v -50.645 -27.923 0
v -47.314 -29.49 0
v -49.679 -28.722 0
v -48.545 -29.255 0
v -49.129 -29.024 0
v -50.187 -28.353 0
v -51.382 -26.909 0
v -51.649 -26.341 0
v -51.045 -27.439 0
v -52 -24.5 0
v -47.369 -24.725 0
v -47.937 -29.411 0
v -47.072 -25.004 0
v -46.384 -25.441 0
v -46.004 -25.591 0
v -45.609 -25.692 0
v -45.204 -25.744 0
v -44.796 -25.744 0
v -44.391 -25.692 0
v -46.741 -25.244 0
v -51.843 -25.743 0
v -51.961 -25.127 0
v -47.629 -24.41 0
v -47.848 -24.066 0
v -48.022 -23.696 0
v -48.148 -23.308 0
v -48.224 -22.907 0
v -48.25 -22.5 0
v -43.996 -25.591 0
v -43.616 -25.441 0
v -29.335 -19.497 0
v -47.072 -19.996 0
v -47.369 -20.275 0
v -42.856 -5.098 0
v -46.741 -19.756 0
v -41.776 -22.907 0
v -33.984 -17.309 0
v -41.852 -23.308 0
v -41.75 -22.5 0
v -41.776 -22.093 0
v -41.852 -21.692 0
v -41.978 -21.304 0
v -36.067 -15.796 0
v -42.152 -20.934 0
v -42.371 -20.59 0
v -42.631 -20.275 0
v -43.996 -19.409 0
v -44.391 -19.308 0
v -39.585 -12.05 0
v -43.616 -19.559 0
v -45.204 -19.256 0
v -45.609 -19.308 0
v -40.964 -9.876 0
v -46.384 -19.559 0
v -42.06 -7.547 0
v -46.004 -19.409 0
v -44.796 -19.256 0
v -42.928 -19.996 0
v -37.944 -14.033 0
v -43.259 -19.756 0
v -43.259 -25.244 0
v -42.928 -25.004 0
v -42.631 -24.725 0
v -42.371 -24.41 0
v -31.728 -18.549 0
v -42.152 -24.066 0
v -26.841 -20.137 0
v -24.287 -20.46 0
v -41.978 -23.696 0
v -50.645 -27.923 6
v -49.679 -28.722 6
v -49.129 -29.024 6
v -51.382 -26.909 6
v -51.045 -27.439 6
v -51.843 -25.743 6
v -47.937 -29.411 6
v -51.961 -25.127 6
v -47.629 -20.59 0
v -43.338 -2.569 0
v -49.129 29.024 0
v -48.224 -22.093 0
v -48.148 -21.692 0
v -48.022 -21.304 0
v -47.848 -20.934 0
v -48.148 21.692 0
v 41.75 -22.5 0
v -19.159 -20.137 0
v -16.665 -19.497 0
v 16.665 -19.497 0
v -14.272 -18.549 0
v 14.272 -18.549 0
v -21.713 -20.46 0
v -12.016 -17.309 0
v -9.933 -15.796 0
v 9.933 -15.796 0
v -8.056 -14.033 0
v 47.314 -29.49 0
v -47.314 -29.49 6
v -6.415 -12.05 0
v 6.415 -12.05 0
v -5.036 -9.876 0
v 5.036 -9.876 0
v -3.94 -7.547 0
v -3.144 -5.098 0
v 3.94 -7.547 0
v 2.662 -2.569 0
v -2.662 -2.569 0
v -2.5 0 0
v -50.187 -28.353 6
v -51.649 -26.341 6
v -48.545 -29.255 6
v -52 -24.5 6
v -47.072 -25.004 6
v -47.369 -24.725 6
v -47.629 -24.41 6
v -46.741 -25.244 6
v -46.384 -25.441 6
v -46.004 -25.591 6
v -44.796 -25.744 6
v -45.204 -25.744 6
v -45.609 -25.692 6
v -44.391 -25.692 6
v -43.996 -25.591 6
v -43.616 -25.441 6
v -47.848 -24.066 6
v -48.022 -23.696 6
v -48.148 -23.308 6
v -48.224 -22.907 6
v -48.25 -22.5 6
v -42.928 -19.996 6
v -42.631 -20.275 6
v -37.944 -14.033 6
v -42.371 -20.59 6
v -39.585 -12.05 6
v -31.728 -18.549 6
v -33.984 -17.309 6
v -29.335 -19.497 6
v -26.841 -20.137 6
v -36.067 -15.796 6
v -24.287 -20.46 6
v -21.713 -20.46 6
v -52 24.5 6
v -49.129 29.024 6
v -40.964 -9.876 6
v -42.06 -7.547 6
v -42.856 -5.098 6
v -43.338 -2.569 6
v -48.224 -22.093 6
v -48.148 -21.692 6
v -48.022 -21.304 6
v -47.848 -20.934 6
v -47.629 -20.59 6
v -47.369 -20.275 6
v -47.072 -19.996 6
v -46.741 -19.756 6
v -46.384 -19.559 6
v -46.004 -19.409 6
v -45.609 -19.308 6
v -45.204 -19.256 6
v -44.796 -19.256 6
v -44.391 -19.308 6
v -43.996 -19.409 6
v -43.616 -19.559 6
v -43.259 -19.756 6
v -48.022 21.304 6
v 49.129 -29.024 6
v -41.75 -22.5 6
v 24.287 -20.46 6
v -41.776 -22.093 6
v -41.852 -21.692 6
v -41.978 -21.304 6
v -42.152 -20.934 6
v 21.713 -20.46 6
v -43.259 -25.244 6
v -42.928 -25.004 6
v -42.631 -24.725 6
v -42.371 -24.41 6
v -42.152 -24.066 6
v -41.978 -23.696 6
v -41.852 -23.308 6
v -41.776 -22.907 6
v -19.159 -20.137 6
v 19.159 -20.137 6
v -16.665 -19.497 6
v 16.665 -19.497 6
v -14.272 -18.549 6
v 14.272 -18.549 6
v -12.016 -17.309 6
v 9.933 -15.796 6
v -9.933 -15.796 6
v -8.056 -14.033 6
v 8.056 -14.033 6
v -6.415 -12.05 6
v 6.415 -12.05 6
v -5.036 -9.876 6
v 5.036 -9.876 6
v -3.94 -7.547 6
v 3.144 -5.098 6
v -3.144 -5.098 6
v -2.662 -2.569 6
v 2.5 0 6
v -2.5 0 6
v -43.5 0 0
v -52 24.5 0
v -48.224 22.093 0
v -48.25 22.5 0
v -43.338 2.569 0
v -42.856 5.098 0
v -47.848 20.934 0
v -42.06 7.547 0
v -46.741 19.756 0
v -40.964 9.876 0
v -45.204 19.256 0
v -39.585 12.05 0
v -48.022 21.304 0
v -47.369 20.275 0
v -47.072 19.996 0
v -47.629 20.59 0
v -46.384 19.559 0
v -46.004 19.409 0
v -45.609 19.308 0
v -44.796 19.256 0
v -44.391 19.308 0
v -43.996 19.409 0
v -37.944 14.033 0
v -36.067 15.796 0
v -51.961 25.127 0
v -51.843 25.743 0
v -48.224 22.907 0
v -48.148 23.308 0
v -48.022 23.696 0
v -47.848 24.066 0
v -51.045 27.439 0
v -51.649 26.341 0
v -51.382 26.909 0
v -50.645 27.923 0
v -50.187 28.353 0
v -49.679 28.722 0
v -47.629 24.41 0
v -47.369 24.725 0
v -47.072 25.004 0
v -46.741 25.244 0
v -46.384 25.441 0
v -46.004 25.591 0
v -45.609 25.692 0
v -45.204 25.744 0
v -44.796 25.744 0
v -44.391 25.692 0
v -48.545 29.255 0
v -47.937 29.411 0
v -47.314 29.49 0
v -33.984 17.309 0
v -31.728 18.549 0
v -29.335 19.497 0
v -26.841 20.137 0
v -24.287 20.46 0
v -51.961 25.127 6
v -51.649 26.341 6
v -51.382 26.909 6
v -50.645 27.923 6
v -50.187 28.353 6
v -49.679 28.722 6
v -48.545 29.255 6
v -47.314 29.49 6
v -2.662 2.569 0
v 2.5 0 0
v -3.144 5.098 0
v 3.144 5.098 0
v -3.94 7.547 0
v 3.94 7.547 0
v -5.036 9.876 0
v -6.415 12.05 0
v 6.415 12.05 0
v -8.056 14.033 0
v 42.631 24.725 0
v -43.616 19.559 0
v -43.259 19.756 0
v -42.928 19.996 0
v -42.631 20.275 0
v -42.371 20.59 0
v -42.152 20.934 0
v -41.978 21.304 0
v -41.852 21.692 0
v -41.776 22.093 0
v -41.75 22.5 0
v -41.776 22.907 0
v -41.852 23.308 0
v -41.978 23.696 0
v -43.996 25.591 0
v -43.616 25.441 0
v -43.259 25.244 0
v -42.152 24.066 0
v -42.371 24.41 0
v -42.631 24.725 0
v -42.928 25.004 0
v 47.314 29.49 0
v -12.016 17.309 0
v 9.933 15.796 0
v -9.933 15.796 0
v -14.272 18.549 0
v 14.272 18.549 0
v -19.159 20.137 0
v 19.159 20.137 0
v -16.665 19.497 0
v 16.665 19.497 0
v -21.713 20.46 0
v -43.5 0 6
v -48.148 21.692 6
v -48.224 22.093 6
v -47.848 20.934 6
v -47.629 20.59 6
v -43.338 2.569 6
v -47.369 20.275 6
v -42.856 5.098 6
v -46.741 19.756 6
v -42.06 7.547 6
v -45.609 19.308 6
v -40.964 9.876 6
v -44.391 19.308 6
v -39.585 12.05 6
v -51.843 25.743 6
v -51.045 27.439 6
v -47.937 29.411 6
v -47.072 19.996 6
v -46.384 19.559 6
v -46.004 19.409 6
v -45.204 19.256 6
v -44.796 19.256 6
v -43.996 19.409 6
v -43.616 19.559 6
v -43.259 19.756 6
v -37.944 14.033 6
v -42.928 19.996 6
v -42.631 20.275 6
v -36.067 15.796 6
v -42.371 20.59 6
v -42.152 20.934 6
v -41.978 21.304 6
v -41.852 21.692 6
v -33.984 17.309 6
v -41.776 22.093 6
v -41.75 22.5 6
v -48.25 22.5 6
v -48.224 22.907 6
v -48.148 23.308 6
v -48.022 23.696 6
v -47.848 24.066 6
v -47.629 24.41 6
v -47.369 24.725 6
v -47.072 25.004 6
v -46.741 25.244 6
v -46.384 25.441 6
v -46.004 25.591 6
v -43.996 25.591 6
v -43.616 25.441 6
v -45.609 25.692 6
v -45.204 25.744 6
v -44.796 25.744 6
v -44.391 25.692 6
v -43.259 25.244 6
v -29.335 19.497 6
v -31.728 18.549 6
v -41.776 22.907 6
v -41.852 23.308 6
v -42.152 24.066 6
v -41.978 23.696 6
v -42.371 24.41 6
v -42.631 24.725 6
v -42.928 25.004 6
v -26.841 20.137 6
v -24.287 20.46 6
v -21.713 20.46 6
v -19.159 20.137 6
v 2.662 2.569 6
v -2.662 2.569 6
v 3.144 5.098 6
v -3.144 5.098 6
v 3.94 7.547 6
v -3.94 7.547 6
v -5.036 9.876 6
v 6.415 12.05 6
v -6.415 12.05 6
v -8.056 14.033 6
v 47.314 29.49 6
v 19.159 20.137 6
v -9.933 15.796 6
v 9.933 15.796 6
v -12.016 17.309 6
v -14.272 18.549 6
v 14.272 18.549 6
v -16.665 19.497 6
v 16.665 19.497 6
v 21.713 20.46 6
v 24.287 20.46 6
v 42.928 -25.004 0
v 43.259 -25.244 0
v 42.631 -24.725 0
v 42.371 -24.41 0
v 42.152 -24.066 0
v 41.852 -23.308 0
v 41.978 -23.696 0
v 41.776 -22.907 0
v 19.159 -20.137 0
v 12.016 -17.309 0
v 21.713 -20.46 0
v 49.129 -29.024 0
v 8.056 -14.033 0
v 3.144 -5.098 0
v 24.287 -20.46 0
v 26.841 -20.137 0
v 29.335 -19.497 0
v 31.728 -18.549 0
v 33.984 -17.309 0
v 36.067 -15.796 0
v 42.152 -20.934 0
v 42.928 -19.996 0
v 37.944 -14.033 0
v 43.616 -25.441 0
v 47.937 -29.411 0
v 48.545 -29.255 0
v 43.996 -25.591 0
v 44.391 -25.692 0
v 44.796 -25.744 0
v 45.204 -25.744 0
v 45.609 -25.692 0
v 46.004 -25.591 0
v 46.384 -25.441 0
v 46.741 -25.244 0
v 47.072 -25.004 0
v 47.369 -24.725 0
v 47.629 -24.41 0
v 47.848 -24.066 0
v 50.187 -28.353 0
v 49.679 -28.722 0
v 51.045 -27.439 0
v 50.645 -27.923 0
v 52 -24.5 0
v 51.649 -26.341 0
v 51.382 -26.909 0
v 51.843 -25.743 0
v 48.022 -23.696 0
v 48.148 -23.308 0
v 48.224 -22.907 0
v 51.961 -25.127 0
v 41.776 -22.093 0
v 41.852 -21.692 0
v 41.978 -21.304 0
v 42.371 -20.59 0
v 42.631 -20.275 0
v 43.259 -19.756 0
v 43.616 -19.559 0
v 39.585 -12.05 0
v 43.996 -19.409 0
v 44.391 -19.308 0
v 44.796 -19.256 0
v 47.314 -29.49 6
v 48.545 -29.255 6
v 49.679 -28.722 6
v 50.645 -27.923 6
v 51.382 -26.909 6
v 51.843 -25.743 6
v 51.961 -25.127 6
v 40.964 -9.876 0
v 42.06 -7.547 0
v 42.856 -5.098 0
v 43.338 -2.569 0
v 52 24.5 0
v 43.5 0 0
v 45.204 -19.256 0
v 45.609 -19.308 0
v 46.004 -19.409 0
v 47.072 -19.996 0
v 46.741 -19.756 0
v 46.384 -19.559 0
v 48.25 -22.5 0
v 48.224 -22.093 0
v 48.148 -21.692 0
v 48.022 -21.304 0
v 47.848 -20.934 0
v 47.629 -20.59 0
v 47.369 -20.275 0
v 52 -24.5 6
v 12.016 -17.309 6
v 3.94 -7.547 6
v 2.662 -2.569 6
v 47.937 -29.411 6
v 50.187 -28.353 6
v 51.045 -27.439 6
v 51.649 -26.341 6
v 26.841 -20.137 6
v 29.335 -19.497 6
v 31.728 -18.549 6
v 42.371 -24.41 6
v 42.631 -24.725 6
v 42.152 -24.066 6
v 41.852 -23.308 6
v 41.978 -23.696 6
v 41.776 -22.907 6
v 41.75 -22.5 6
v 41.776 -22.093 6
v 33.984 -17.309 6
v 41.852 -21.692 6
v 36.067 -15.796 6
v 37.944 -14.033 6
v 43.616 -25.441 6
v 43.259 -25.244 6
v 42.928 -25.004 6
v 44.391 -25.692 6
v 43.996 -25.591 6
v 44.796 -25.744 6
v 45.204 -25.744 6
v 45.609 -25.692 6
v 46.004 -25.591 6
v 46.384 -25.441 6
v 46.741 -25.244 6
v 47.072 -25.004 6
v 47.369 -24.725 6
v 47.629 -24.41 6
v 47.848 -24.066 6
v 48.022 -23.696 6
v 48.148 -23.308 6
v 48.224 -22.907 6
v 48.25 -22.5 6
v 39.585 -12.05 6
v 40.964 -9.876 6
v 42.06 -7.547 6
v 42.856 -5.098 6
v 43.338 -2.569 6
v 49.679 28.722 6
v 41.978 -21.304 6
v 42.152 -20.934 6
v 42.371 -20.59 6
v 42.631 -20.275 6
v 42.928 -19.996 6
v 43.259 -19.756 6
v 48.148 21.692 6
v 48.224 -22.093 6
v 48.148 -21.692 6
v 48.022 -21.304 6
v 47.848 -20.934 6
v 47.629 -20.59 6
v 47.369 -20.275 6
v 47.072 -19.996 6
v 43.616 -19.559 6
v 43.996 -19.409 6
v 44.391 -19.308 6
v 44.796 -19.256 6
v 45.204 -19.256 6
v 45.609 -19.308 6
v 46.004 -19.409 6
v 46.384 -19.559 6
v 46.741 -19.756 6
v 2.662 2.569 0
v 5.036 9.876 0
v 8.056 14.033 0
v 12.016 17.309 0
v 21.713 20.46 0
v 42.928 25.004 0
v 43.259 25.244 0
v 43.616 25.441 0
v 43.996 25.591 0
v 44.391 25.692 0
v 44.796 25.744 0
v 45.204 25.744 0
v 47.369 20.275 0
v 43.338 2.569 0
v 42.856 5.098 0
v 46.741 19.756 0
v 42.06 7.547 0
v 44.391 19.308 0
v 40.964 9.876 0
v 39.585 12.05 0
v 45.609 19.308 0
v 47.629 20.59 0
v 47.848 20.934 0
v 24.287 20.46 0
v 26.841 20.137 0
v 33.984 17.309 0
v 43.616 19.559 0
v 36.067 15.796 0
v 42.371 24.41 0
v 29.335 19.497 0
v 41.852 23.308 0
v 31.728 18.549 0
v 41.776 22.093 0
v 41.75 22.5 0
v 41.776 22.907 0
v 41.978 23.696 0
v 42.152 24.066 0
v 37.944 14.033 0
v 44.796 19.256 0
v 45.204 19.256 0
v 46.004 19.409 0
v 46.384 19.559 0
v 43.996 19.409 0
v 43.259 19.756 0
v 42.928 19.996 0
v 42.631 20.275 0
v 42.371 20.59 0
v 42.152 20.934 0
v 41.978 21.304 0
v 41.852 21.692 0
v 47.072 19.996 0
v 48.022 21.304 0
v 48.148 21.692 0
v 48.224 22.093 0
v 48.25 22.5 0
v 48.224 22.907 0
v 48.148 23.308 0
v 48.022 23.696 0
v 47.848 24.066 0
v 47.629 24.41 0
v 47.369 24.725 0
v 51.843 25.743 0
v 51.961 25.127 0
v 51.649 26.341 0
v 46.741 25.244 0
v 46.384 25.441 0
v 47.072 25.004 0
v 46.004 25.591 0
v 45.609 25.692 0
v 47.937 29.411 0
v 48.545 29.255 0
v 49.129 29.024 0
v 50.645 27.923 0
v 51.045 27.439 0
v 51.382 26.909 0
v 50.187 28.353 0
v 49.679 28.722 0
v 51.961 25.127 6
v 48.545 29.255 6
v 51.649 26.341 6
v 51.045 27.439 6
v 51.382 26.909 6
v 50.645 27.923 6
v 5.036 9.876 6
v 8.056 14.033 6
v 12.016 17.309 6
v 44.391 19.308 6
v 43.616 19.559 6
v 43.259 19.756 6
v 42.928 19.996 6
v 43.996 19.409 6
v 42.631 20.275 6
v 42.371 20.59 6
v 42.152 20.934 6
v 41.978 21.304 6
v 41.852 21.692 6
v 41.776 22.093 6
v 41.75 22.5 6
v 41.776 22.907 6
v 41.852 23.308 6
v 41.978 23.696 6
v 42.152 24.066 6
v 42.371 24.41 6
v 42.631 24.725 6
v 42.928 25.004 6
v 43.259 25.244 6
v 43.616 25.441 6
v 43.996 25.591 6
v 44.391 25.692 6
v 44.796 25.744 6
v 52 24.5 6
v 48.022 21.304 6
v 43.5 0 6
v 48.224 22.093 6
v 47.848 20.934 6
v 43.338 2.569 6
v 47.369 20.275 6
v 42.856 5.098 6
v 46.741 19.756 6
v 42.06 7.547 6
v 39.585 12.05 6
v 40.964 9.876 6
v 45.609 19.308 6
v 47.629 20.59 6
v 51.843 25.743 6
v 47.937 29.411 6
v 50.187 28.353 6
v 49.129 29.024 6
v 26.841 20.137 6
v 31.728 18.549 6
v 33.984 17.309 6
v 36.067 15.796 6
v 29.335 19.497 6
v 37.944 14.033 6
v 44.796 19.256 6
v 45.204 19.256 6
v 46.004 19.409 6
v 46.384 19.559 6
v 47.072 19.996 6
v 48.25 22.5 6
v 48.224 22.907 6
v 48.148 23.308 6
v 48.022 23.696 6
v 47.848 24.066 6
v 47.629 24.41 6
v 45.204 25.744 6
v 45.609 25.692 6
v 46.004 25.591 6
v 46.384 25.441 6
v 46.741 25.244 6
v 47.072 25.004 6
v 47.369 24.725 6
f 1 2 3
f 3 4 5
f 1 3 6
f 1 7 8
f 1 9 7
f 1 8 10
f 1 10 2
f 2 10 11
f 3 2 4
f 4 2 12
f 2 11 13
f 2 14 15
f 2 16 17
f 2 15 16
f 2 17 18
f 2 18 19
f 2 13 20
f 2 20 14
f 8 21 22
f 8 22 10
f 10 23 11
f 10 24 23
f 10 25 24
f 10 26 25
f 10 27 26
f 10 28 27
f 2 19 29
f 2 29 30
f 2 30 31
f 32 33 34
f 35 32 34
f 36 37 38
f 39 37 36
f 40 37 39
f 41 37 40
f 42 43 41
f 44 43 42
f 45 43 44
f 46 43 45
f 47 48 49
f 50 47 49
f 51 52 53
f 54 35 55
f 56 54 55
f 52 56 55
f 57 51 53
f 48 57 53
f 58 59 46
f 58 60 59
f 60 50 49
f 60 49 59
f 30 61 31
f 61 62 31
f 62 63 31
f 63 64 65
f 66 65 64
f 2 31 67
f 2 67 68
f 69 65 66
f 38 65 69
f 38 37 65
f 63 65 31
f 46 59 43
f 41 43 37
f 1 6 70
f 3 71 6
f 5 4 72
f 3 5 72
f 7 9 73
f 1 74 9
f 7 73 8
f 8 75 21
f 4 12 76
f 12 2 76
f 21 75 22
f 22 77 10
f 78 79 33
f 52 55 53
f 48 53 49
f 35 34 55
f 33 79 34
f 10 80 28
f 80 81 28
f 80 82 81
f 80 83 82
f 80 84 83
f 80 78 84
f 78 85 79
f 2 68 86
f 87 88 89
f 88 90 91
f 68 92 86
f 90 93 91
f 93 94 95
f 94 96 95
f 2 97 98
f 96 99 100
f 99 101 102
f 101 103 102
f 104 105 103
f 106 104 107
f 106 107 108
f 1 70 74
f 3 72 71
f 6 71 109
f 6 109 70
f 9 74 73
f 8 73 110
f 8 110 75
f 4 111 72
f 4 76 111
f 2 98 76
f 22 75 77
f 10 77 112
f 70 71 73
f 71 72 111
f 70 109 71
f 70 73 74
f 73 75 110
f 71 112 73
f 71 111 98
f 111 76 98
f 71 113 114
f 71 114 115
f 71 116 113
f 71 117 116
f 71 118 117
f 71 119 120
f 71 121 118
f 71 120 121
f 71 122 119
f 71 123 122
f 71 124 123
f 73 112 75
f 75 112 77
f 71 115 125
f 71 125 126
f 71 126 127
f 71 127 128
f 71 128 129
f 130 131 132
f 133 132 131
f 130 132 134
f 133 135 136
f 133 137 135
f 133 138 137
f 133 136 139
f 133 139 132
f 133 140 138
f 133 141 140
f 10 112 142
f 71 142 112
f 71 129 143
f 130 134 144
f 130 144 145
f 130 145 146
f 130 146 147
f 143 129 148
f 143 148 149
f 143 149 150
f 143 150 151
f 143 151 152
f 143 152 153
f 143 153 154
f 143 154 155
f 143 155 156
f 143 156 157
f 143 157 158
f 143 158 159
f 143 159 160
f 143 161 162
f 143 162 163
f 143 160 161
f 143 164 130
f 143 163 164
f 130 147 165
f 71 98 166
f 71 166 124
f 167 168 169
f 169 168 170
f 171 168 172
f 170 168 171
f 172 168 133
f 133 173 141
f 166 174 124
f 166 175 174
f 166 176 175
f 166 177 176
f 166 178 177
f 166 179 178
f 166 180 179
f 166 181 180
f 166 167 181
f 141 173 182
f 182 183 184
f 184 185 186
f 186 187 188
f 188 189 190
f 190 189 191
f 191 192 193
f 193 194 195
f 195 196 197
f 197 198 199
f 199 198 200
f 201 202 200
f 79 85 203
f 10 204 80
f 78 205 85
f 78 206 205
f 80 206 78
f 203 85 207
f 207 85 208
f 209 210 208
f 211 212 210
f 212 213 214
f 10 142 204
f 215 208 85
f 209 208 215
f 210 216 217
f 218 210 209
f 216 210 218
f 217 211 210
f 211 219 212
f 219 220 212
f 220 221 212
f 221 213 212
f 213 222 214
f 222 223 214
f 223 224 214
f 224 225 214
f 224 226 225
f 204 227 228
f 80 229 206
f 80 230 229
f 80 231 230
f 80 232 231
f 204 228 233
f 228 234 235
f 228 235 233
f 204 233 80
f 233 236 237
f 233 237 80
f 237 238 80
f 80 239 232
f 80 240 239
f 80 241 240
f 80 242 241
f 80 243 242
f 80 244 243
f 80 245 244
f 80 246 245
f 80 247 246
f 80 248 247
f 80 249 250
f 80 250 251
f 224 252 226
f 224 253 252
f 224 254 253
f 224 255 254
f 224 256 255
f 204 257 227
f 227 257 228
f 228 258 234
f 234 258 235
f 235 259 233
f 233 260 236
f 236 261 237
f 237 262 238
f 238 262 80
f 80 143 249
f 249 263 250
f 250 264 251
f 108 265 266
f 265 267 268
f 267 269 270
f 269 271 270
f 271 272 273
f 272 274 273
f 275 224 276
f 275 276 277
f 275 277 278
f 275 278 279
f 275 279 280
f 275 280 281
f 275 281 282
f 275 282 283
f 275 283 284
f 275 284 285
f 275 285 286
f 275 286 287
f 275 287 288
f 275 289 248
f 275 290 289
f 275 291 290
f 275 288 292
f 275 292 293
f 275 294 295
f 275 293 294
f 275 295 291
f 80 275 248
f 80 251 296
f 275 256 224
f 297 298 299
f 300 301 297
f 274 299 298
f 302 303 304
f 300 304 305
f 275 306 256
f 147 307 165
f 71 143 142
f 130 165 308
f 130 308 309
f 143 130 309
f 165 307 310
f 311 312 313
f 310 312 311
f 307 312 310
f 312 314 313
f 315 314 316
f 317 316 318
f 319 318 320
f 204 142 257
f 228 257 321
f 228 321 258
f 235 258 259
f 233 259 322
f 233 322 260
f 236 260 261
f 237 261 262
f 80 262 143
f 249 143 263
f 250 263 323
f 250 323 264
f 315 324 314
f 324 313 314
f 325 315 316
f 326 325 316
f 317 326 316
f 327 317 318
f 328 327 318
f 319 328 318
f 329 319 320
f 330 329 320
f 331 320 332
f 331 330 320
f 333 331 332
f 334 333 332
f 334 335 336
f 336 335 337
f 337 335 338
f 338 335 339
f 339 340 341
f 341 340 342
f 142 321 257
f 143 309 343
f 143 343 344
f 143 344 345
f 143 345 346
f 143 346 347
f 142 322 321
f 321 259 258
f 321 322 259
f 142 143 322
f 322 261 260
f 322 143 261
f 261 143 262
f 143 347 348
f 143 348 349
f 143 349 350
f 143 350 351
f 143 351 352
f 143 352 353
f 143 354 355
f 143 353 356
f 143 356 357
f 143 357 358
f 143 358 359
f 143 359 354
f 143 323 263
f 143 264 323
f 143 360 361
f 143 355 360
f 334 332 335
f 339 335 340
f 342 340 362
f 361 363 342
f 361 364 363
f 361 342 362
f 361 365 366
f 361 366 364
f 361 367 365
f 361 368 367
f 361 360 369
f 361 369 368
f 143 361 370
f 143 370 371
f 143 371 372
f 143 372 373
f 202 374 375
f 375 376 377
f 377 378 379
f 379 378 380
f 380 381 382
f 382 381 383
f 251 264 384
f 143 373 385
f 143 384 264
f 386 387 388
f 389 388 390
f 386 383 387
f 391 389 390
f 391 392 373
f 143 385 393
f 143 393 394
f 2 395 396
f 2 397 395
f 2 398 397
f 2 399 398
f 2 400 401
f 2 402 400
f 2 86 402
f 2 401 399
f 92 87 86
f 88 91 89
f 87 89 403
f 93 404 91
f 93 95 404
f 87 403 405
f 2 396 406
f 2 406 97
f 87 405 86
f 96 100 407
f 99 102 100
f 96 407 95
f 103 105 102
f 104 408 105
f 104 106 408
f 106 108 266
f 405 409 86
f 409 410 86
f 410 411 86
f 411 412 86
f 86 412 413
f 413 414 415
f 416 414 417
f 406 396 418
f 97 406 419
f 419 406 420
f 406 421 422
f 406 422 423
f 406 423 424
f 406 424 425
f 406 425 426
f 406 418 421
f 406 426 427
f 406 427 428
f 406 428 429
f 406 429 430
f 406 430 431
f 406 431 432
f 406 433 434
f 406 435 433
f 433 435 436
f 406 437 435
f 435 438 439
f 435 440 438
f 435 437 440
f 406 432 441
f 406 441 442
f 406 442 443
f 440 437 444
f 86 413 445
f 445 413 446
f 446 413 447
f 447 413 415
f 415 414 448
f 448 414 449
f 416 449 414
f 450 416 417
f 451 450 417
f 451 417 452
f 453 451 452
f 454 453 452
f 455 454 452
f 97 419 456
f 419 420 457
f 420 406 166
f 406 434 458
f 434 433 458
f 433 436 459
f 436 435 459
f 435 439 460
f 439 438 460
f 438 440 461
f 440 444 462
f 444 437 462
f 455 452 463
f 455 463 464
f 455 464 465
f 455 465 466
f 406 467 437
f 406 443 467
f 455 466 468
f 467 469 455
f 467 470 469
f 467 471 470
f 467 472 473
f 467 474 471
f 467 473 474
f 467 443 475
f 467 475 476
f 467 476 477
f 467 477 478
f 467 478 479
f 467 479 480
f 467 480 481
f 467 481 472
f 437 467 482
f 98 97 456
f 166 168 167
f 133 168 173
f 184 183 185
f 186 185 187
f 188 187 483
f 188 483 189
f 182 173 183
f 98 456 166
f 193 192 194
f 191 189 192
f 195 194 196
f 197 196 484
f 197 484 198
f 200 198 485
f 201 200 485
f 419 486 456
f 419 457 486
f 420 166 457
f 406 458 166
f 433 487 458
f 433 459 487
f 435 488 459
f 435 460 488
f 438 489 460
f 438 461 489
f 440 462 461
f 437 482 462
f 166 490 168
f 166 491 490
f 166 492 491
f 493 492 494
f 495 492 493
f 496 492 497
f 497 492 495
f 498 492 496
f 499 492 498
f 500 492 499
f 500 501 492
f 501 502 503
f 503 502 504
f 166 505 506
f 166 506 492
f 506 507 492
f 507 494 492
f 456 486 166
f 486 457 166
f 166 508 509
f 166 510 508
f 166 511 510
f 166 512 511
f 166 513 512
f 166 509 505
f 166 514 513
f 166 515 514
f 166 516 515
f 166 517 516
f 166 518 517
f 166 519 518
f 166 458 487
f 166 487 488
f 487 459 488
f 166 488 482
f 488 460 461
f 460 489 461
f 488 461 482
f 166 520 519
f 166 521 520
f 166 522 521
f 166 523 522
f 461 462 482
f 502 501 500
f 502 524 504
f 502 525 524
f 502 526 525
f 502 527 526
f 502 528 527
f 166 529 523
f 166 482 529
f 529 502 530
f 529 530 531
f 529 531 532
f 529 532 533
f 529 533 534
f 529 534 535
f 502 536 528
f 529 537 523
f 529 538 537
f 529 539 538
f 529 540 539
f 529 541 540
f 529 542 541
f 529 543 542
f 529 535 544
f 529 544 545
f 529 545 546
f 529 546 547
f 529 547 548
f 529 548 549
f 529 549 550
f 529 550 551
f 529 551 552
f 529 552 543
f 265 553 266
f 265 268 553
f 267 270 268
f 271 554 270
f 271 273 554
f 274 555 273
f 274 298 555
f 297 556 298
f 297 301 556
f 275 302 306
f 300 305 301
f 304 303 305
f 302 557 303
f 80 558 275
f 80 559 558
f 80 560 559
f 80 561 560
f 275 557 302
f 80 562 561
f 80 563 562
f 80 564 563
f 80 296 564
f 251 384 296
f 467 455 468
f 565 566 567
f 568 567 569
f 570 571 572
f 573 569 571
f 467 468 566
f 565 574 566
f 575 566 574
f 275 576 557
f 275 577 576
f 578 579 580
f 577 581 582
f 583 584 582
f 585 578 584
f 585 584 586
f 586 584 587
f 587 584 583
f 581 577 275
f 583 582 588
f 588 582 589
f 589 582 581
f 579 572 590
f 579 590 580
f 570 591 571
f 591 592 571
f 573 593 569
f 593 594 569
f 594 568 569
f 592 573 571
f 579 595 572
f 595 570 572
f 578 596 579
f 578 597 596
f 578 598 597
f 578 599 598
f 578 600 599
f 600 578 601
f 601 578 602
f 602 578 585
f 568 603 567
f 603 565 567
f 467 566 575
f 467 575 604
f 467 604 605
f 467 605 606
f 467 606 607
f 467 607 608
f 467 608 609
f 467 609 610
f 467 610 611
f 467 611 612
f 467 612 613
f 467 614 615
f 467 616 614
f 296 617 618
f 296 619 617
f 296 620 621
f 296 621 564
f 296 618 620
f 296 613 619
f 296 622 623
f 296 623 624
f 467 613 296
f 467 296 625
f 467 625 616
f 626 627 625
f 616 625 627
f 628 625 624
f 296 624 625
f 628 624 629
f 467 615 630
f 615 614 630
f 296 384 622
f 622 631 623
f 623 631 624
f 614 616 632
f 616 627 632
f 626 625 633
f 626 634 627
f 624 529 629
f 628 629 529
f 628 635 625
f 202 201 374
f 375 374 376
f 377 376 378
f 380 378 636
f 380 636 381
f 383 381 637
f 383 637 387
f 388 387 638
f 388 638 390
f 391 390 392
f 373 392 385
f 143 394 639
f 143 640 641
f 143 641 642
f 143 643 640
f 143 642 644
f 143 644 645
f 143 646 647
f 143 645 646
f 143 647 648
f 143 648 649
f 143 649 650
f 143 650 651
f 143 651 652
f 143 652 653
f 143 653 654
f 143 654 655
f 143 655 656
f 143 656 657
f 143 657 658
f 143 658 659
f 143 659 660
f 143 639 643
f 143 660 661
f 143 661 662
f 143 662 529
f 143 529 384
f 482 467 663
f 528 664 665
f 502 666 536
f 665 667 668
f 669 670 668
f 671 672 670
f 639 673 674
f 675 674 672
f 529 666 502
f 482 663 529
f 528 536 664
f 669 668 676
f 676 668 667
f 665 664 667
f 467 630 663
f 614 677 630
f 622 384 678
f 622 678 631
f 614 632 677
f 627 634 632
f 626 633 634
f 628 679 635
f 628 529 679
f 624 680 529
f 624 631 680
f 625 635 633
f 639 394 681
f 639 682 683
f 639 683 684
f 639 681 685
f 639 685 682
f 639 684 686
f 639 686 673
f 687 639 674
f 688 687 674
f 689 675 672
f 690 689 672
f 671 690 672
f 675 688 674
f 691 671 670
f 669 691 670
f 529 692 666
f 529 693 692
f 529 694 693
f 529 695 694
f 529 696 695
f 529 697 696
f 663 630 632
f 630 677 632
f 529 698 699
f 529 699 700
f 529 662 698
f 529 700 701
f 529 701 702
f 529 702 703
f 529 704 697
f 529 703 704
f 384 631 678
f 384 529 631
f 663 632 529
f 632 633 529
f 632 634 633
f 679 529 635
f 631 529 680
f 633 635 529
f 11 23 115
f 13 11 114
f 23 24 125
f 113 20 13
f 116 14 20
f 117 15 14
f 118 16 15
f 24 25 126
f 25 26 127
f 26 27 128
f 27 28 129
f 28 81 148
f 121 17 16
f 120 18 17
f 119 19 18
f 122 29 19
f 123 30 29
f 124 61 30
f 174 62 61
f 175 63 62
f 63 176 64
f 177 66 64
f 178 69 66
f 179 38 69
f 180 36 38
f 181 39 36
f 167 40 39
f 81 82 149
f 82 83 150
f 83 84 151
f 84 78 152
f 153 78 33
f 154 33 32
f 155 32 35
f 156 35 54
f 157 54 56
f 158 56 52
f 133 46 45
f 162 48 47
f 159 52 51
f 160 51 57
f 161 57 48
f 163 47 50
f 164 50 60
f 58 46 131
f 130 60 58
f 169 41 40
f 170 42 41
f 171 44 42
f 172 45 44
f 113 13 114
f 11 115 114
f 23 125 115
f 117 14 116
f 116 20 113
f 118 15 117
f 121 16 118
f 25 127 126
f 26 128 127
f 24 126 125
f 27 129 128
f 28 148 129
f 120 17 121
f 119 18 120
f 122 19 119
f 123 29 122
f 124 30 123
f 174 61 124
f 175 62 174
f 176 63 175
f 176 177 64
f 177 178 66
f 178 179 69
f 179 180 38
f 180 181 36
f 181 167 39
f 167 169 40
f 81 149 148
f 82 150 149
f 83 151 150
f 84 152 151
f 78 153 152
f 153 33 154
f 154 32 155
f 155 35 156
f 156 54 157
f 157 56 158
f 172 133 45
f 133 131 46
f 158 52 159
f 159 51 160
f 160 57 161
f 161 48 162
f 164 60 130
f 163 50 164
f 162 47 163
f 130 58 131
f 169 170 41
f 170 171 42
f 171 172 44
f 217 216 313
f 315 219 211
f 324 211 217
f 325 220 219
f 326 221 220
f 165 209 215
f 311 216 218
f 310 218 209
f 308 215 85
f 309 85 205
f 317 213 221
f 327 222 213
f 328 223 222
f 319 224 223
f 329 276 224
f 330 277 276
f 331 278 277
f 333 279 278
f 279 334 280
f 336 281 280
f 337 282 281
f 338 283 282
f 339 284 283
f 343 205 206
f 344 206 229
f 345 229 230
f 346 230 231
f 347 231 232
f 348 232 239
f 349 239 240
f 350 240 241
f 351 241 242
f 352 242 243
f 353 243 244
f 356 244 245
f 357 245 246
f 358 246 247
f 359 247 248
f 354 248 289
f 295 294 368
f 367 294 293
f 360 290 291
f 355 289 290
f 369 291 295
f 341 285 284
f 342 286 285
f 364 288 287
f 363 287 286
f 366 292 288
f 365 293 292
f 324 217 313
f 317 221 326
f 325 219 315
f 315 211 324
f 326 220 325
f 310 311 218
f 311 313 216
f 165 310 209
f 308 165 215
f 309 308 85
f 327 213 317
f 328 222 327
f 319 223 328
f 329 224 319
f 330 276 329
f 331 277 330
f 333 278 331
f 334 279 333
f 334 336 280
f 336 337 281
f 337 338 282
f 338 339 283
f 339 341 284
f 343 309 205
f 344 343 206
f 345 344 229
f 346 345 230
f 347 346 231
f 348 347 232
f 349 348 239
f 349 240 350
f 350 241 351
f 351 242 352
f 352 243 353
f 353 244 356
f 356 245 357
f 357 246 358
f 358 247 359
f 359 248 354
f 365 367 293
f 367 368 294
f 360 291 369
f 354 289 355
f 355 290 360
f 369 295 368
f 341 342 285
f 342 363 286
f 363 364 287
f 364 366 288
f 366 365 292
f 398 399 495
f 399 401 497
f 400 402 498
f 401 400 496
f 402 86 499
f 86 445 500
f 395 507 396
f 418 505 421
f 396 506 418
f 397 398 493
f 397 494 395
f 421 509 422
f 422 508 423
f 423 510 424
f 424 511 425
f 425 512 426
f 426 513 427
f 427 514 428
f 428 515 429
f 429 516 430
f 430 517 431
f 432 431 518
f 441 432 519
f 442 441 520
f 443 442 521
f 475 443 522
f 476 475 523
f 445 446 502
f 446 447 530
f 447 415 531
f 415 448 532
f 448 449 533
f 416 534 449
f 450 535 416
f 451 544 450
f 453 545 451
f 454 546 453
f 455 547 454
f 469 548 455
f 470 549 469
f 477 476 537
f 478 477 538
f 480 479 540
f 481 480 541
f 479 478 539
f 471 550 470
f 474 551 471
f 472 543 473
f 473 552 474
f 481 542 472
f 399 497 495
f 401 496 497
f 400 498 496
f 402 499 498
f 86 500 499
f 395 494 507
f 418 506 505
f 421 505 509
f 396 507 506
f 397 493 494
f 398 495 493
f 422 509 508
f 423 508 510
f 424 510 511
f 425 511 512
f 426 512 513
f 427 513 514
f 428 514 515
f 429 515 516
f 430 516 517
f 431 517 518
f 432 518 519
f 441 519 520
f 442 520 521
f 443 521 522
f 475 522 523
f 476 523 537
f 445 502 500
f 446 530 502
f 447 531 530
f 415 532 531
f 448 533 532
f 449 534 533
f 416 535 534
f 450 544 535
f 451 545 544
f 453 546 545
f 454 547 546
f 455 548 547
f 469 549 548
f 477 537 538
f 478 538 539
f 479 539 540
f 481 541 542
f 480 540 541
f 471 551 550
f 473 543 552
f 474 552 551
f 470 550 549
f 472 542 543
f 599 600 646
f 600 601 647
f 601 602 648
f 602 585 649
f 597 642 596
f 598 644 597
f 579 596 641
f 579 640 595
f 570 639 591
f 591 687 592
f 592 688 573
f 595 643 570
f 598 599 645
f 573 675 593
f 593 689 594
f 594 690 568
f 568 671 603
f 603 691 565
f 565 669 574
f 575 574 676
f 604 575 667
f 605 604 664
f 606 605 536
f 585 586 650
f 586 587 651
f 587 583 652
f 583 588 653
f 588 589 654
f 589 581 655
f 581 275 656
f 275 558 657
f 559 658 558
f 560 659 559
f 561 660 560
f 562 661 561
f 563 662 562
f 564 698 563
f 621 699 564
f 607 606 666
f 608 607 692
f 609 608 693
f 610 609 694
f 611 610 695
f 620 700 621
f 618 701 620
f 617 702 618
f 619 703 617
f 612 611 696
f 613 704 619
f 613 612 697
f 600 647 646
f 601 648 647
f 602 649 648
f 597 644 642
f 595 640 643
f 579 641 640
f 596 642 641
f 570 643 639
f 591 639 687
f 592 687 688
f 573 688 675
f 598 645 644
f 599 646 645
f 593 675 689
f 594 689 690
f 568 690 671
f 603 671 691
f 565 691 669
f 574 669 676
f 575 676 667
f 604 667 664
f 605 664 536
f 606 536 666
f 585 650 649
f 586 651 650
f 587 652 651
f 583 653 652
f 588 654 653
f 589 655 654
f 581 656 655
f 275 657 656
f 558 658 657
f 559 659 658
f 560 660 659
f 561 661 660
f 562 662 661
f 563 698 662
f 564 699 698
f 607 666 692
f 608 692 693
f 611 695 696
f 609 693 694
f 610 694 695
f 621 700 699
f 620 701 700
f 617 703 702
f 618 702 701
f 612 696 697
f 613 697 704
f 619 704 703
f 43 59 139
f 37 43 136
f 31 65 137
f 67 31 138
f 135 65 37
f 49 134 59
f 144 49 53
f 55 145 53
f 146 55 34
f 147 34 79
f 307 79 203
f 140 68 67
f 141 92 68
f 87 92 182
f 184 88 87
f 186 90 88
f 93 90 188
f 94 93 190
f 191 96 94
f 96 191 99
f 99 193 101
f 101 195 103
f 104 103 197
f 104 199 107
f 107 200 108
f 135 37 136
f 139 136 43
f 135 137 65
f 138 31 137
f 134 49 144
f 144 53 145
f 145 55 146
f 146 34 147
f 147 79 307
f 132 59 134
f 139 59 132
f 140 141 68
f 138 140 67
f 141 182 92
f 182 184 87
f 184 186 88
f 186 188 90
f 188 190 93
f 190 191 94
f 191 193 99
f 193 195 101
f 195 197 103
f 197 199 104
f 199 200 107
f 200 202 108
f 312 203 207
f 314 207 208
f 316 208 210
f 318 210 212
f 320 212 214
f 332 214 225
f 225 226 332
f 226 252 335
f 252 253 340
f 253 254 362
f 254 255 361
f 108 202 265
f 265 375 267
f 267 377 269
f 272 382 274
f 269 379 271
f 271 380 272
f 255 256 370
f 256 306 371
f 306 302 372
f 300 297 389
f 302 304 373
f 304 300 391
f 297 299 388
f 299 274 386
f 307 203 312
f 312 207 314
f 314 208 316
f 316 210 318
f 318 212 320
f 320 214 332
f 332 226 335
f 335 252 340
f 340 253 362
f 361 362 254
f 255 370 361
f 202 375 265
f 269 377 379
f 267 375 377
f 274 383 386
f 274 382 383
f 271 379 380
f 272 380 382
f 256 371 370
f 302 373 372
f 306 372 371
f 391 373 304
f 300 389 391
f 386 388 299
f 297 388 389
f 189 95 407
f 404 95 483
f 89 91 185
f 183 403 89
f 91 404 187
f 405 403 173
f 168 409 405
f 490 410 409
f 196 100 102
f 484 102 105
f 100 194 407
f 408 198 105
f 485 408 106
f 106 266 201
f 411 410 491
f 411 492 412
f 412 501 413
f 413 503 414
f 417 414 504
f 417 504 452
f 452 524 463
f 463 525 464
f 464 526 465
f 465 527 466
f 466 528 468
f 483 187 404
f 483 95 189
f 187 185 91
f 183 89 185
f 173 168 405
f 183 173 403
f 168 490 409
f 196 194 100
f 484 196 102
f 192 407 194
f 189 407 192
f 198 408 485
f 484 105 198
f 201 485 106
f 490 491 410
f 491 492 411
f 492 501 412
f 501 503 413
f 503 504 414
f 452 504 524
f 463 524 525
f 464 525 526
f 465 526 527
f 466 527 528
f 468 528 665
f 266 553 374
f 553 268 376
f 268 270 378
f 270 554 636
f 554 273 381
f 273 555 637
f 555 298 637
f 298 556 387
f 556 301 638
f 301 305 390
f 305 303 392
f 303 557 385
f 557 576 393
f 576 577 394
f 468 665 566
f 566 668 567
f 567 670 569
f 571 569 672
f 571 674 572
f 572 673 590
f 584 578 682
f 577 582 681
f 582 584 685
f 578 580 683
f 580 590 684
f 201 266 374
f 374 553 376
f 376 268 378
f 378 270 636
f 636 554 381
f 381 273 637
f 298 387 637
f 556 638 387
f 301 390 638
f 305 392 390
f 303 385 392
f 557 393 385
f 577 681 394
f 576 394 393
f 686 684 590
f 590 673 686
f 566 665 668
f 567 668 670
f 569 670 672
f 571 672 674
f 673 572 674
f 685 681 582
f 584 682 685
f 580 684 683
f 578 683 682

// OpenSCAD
$fn = 50;

difference() {
	union() {
		hull() {
			translate(v = [-47.0, 24.5, 0]) {
				cylinder(h = 6, r = 5);
			}
			translate(v = [47.0, 24.5, 0]) {
				cylinder(h = 6, r = 5);
			}
			translate(v = [-47.0, -24.5, 0]) {
				cylinder(h = 6, r = 5);
			}
			translate(v = [47.0, -24.5, 0]) {
				cylinder(h = 6, r = 5);
			}
		}
	}
	union() {
		translate(v = [-45.0, -22.5, -100.0]) {
			cylinder(h = 200, r = 3.25);
		}
		translate(v = [-45.0, 22.5, -100.0]) {
			cylinder(h = 200, r = 3.25);
		}
		translate(v = [45.0, -22.5, -100.0]) {
			cylinder(h = 200, r = 3.25);
		}
		translate(v = [45.0, 22.5, -100.0]) {
			cylinder(h = 200, r = 3.25);
		}
		translate(v = [-45.0, -22.5, -100.0]) {
			cylinder(h = 200, r = 1.8);
		}
		translate(v = [-45.0, 22.5, -100.0]) {
			cylinder(h = 200, r = 1.8);
		}
		translate(v = [45.0, -22.5, -100.0]) {
			cylinder(h = 200, r = 1.8);
		}
		translate(v = [45.0, 22.5, -100.0]) {
			cylinder(h = 200, r = 1.8);
		}
		translate(v = [-23.0, 0, 0.0]) {
			cylinder(h = 6, r = 20.5);
		}
		translate(v = [23.0, 0, 0.0]) {
			cylinder(h = 6, r = 20.5);
		}
	}
}
